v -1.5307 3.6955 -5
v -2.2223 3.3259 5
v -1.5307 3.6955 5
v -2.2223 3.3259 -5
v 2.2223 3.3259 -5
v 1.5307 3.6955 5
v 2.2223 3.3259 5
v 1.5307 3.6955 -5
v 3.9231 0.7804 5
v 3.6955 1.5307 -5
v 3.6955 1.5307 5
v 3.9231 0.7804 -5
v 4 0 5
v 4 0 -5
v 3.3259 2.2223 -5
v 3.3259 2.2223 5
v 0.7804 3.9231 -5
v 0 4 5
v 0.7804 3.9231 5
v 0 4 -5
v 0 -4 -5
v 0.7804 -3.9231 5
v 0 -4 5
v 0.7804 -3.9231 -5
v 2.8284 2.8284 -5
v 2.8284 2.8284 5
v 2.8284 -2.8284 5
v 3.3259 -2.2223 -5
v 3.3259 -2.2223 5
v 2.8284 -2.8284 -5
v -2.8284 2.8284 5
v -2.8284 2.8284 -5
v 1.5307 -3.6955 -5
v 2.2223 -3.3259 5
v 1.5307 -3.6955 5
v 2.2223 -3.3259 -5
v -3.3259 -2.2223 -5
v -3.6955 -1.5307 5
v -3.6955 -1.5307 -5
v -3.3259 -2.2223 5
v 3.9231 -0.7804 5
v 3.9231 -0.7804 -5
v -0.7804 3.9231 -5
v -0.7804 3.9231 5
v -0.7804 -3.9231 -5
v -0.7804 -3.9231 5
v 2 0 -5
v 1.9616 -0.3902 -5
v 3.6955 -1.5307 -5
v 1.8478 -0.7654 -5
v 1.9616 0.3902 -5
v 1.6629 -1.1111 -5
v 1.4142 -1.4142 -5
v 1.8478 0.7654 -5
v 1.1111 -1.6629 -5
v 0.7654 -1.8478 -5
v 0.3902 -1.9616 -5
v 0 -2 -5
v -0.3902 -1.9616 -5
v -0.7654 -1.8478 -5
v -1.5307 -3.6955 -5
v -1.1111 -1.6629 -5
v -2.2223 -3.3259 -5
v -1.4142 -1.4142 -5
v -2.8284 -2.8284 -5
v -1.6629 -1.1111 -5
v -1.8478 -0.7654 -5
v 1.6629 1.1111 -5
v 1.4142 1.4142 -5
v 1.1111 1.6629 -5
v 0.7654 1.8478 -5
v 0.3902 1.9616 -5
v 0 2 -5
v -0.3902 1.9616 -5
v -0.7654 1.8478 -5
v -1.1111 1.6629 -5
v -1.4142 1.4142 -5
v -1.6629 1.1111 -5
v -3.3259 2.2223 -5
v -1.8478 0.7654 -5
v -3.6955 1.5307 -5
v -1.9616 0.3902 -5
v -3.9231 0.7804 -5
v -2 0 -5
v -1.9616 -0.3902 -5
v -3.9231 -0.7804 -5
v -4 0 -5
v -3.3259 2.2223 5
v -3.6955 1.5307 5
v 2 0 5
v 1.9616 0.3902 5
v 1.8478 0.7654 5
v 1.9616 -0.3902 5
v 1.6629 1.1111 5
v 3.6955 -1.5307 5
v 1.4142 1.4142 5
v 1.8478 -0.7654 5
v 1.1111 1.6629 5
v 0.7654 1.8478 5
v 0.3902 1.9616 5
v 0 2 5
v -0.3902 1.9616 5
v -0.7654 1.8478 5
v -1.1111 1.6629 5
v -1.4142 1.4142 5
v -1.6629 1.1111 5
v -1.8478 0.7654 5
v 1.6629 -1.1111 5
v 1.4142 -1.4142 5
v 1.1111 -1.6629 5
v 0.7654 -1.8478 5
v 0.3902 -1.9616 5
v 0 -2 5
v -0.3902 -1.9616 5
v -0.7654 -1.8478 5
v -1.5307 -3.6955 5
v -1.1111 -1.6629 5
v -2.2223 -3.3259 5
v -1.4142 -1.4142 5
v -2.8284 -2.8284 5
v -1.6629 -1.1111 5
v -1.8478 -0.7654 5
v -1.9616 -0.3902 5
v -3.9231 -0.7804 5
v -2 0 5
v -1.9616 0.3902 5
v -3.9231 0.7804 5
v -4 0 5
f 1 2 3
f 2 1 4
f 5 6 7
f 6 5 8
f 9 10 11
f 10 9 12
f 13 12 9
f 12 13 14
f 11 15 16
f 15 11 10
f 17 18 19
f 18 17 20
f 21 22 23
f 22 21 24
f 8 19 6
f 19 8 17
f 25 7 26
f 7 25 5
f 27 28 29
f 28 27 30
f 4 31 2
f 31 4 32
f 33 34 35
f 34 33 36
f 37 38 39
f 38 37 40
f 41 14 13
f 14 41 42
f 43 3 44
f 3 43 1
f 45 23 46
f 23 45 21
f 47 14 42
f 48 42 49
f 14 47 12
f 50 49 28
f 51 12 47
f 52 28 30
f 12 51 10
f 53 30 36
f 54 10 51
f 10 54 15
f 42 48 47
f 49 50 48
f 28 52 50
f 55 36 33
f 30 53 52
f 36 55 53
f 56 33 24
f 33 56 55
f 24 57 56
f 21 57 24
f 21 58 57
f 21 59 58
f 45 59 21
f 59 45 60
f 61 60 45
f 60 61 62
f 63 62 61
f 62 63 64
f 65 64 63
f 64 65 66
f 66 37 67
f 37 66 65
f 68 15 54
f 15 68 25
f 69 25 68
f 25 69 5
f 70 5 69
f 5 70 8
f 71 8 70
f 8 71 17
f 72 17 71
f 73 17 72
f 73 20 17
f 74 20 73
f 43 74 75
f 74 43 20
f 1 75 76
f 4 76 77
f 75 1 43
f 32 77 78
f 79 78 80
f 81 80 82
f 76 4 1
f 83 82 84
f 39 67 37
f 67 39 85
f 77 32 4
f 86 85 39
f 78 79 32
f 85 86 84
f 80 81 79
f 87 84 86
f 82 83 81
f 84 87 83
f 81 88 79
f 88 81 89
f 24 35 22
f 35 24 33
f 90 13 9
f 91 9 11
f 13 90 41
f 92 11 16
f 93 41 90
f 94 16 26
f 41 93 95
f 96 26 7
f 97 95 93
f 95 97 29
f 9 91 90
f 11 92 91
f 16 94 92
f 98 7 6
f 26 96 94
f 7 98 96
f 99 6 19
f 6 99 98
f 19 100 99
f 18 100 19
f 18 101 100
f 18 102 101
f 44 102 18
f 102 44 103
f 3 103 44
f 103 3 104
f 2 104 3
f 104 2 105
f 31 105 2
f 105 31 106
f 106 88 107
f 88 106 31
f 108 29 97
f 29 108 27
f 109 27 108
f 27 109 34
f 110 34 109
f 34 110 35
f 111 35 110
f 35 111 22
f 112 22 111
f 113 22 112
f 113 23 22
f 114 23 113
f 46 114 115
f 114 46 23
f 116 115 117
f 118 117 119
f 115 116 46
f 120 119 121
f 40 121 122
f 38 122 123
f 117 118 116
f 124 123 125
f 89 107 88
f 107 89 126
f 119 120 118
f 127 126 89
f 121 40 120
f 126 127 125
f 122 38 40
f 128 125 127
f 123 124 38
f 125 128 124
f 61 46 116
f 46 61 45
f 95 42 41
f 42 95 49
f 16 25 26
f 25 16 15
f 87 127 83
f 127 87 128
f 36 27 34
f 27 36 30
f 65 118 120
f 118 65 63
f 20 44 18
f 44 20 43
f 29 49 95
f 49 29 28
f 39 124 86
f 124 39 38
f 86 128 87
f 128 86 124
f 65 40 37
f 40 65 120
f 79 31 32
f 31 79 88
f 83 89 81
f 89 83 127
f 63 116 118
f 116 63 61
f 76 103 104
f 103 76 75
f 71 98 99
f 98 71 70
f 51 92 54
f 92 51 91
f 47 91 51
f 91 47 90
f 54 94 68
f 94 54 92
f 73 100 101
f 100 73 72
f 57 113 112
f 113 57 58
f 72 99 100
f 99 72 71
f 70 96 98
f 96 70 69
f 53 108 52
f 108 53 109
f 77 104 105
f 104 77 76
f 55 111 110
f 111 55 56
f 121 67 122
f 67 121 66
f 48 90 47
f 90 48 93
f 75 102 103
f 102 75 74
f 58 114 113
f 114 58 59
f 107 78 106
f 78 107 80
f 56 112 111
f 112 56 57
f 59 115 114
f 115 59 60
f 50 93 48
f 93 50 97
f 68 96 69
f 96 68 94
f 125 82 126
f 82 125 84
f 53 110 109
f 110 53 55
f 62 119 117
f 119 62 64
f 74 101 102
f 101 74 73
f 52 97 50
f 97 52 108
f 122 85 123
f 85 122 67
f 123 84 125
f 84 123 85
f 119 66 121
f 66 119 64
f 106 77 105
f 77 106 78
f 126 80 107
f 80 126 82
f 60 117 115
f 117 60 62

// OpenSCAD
$fn=32;

Alto=10;
Diametro=4;
Espesor=2;



difference(){
    cylinder(d=Diametro+2*Espesor,h=Alto, center=true);
    cylinder(d=Diametro,h=Alto+1, center=true);
}
